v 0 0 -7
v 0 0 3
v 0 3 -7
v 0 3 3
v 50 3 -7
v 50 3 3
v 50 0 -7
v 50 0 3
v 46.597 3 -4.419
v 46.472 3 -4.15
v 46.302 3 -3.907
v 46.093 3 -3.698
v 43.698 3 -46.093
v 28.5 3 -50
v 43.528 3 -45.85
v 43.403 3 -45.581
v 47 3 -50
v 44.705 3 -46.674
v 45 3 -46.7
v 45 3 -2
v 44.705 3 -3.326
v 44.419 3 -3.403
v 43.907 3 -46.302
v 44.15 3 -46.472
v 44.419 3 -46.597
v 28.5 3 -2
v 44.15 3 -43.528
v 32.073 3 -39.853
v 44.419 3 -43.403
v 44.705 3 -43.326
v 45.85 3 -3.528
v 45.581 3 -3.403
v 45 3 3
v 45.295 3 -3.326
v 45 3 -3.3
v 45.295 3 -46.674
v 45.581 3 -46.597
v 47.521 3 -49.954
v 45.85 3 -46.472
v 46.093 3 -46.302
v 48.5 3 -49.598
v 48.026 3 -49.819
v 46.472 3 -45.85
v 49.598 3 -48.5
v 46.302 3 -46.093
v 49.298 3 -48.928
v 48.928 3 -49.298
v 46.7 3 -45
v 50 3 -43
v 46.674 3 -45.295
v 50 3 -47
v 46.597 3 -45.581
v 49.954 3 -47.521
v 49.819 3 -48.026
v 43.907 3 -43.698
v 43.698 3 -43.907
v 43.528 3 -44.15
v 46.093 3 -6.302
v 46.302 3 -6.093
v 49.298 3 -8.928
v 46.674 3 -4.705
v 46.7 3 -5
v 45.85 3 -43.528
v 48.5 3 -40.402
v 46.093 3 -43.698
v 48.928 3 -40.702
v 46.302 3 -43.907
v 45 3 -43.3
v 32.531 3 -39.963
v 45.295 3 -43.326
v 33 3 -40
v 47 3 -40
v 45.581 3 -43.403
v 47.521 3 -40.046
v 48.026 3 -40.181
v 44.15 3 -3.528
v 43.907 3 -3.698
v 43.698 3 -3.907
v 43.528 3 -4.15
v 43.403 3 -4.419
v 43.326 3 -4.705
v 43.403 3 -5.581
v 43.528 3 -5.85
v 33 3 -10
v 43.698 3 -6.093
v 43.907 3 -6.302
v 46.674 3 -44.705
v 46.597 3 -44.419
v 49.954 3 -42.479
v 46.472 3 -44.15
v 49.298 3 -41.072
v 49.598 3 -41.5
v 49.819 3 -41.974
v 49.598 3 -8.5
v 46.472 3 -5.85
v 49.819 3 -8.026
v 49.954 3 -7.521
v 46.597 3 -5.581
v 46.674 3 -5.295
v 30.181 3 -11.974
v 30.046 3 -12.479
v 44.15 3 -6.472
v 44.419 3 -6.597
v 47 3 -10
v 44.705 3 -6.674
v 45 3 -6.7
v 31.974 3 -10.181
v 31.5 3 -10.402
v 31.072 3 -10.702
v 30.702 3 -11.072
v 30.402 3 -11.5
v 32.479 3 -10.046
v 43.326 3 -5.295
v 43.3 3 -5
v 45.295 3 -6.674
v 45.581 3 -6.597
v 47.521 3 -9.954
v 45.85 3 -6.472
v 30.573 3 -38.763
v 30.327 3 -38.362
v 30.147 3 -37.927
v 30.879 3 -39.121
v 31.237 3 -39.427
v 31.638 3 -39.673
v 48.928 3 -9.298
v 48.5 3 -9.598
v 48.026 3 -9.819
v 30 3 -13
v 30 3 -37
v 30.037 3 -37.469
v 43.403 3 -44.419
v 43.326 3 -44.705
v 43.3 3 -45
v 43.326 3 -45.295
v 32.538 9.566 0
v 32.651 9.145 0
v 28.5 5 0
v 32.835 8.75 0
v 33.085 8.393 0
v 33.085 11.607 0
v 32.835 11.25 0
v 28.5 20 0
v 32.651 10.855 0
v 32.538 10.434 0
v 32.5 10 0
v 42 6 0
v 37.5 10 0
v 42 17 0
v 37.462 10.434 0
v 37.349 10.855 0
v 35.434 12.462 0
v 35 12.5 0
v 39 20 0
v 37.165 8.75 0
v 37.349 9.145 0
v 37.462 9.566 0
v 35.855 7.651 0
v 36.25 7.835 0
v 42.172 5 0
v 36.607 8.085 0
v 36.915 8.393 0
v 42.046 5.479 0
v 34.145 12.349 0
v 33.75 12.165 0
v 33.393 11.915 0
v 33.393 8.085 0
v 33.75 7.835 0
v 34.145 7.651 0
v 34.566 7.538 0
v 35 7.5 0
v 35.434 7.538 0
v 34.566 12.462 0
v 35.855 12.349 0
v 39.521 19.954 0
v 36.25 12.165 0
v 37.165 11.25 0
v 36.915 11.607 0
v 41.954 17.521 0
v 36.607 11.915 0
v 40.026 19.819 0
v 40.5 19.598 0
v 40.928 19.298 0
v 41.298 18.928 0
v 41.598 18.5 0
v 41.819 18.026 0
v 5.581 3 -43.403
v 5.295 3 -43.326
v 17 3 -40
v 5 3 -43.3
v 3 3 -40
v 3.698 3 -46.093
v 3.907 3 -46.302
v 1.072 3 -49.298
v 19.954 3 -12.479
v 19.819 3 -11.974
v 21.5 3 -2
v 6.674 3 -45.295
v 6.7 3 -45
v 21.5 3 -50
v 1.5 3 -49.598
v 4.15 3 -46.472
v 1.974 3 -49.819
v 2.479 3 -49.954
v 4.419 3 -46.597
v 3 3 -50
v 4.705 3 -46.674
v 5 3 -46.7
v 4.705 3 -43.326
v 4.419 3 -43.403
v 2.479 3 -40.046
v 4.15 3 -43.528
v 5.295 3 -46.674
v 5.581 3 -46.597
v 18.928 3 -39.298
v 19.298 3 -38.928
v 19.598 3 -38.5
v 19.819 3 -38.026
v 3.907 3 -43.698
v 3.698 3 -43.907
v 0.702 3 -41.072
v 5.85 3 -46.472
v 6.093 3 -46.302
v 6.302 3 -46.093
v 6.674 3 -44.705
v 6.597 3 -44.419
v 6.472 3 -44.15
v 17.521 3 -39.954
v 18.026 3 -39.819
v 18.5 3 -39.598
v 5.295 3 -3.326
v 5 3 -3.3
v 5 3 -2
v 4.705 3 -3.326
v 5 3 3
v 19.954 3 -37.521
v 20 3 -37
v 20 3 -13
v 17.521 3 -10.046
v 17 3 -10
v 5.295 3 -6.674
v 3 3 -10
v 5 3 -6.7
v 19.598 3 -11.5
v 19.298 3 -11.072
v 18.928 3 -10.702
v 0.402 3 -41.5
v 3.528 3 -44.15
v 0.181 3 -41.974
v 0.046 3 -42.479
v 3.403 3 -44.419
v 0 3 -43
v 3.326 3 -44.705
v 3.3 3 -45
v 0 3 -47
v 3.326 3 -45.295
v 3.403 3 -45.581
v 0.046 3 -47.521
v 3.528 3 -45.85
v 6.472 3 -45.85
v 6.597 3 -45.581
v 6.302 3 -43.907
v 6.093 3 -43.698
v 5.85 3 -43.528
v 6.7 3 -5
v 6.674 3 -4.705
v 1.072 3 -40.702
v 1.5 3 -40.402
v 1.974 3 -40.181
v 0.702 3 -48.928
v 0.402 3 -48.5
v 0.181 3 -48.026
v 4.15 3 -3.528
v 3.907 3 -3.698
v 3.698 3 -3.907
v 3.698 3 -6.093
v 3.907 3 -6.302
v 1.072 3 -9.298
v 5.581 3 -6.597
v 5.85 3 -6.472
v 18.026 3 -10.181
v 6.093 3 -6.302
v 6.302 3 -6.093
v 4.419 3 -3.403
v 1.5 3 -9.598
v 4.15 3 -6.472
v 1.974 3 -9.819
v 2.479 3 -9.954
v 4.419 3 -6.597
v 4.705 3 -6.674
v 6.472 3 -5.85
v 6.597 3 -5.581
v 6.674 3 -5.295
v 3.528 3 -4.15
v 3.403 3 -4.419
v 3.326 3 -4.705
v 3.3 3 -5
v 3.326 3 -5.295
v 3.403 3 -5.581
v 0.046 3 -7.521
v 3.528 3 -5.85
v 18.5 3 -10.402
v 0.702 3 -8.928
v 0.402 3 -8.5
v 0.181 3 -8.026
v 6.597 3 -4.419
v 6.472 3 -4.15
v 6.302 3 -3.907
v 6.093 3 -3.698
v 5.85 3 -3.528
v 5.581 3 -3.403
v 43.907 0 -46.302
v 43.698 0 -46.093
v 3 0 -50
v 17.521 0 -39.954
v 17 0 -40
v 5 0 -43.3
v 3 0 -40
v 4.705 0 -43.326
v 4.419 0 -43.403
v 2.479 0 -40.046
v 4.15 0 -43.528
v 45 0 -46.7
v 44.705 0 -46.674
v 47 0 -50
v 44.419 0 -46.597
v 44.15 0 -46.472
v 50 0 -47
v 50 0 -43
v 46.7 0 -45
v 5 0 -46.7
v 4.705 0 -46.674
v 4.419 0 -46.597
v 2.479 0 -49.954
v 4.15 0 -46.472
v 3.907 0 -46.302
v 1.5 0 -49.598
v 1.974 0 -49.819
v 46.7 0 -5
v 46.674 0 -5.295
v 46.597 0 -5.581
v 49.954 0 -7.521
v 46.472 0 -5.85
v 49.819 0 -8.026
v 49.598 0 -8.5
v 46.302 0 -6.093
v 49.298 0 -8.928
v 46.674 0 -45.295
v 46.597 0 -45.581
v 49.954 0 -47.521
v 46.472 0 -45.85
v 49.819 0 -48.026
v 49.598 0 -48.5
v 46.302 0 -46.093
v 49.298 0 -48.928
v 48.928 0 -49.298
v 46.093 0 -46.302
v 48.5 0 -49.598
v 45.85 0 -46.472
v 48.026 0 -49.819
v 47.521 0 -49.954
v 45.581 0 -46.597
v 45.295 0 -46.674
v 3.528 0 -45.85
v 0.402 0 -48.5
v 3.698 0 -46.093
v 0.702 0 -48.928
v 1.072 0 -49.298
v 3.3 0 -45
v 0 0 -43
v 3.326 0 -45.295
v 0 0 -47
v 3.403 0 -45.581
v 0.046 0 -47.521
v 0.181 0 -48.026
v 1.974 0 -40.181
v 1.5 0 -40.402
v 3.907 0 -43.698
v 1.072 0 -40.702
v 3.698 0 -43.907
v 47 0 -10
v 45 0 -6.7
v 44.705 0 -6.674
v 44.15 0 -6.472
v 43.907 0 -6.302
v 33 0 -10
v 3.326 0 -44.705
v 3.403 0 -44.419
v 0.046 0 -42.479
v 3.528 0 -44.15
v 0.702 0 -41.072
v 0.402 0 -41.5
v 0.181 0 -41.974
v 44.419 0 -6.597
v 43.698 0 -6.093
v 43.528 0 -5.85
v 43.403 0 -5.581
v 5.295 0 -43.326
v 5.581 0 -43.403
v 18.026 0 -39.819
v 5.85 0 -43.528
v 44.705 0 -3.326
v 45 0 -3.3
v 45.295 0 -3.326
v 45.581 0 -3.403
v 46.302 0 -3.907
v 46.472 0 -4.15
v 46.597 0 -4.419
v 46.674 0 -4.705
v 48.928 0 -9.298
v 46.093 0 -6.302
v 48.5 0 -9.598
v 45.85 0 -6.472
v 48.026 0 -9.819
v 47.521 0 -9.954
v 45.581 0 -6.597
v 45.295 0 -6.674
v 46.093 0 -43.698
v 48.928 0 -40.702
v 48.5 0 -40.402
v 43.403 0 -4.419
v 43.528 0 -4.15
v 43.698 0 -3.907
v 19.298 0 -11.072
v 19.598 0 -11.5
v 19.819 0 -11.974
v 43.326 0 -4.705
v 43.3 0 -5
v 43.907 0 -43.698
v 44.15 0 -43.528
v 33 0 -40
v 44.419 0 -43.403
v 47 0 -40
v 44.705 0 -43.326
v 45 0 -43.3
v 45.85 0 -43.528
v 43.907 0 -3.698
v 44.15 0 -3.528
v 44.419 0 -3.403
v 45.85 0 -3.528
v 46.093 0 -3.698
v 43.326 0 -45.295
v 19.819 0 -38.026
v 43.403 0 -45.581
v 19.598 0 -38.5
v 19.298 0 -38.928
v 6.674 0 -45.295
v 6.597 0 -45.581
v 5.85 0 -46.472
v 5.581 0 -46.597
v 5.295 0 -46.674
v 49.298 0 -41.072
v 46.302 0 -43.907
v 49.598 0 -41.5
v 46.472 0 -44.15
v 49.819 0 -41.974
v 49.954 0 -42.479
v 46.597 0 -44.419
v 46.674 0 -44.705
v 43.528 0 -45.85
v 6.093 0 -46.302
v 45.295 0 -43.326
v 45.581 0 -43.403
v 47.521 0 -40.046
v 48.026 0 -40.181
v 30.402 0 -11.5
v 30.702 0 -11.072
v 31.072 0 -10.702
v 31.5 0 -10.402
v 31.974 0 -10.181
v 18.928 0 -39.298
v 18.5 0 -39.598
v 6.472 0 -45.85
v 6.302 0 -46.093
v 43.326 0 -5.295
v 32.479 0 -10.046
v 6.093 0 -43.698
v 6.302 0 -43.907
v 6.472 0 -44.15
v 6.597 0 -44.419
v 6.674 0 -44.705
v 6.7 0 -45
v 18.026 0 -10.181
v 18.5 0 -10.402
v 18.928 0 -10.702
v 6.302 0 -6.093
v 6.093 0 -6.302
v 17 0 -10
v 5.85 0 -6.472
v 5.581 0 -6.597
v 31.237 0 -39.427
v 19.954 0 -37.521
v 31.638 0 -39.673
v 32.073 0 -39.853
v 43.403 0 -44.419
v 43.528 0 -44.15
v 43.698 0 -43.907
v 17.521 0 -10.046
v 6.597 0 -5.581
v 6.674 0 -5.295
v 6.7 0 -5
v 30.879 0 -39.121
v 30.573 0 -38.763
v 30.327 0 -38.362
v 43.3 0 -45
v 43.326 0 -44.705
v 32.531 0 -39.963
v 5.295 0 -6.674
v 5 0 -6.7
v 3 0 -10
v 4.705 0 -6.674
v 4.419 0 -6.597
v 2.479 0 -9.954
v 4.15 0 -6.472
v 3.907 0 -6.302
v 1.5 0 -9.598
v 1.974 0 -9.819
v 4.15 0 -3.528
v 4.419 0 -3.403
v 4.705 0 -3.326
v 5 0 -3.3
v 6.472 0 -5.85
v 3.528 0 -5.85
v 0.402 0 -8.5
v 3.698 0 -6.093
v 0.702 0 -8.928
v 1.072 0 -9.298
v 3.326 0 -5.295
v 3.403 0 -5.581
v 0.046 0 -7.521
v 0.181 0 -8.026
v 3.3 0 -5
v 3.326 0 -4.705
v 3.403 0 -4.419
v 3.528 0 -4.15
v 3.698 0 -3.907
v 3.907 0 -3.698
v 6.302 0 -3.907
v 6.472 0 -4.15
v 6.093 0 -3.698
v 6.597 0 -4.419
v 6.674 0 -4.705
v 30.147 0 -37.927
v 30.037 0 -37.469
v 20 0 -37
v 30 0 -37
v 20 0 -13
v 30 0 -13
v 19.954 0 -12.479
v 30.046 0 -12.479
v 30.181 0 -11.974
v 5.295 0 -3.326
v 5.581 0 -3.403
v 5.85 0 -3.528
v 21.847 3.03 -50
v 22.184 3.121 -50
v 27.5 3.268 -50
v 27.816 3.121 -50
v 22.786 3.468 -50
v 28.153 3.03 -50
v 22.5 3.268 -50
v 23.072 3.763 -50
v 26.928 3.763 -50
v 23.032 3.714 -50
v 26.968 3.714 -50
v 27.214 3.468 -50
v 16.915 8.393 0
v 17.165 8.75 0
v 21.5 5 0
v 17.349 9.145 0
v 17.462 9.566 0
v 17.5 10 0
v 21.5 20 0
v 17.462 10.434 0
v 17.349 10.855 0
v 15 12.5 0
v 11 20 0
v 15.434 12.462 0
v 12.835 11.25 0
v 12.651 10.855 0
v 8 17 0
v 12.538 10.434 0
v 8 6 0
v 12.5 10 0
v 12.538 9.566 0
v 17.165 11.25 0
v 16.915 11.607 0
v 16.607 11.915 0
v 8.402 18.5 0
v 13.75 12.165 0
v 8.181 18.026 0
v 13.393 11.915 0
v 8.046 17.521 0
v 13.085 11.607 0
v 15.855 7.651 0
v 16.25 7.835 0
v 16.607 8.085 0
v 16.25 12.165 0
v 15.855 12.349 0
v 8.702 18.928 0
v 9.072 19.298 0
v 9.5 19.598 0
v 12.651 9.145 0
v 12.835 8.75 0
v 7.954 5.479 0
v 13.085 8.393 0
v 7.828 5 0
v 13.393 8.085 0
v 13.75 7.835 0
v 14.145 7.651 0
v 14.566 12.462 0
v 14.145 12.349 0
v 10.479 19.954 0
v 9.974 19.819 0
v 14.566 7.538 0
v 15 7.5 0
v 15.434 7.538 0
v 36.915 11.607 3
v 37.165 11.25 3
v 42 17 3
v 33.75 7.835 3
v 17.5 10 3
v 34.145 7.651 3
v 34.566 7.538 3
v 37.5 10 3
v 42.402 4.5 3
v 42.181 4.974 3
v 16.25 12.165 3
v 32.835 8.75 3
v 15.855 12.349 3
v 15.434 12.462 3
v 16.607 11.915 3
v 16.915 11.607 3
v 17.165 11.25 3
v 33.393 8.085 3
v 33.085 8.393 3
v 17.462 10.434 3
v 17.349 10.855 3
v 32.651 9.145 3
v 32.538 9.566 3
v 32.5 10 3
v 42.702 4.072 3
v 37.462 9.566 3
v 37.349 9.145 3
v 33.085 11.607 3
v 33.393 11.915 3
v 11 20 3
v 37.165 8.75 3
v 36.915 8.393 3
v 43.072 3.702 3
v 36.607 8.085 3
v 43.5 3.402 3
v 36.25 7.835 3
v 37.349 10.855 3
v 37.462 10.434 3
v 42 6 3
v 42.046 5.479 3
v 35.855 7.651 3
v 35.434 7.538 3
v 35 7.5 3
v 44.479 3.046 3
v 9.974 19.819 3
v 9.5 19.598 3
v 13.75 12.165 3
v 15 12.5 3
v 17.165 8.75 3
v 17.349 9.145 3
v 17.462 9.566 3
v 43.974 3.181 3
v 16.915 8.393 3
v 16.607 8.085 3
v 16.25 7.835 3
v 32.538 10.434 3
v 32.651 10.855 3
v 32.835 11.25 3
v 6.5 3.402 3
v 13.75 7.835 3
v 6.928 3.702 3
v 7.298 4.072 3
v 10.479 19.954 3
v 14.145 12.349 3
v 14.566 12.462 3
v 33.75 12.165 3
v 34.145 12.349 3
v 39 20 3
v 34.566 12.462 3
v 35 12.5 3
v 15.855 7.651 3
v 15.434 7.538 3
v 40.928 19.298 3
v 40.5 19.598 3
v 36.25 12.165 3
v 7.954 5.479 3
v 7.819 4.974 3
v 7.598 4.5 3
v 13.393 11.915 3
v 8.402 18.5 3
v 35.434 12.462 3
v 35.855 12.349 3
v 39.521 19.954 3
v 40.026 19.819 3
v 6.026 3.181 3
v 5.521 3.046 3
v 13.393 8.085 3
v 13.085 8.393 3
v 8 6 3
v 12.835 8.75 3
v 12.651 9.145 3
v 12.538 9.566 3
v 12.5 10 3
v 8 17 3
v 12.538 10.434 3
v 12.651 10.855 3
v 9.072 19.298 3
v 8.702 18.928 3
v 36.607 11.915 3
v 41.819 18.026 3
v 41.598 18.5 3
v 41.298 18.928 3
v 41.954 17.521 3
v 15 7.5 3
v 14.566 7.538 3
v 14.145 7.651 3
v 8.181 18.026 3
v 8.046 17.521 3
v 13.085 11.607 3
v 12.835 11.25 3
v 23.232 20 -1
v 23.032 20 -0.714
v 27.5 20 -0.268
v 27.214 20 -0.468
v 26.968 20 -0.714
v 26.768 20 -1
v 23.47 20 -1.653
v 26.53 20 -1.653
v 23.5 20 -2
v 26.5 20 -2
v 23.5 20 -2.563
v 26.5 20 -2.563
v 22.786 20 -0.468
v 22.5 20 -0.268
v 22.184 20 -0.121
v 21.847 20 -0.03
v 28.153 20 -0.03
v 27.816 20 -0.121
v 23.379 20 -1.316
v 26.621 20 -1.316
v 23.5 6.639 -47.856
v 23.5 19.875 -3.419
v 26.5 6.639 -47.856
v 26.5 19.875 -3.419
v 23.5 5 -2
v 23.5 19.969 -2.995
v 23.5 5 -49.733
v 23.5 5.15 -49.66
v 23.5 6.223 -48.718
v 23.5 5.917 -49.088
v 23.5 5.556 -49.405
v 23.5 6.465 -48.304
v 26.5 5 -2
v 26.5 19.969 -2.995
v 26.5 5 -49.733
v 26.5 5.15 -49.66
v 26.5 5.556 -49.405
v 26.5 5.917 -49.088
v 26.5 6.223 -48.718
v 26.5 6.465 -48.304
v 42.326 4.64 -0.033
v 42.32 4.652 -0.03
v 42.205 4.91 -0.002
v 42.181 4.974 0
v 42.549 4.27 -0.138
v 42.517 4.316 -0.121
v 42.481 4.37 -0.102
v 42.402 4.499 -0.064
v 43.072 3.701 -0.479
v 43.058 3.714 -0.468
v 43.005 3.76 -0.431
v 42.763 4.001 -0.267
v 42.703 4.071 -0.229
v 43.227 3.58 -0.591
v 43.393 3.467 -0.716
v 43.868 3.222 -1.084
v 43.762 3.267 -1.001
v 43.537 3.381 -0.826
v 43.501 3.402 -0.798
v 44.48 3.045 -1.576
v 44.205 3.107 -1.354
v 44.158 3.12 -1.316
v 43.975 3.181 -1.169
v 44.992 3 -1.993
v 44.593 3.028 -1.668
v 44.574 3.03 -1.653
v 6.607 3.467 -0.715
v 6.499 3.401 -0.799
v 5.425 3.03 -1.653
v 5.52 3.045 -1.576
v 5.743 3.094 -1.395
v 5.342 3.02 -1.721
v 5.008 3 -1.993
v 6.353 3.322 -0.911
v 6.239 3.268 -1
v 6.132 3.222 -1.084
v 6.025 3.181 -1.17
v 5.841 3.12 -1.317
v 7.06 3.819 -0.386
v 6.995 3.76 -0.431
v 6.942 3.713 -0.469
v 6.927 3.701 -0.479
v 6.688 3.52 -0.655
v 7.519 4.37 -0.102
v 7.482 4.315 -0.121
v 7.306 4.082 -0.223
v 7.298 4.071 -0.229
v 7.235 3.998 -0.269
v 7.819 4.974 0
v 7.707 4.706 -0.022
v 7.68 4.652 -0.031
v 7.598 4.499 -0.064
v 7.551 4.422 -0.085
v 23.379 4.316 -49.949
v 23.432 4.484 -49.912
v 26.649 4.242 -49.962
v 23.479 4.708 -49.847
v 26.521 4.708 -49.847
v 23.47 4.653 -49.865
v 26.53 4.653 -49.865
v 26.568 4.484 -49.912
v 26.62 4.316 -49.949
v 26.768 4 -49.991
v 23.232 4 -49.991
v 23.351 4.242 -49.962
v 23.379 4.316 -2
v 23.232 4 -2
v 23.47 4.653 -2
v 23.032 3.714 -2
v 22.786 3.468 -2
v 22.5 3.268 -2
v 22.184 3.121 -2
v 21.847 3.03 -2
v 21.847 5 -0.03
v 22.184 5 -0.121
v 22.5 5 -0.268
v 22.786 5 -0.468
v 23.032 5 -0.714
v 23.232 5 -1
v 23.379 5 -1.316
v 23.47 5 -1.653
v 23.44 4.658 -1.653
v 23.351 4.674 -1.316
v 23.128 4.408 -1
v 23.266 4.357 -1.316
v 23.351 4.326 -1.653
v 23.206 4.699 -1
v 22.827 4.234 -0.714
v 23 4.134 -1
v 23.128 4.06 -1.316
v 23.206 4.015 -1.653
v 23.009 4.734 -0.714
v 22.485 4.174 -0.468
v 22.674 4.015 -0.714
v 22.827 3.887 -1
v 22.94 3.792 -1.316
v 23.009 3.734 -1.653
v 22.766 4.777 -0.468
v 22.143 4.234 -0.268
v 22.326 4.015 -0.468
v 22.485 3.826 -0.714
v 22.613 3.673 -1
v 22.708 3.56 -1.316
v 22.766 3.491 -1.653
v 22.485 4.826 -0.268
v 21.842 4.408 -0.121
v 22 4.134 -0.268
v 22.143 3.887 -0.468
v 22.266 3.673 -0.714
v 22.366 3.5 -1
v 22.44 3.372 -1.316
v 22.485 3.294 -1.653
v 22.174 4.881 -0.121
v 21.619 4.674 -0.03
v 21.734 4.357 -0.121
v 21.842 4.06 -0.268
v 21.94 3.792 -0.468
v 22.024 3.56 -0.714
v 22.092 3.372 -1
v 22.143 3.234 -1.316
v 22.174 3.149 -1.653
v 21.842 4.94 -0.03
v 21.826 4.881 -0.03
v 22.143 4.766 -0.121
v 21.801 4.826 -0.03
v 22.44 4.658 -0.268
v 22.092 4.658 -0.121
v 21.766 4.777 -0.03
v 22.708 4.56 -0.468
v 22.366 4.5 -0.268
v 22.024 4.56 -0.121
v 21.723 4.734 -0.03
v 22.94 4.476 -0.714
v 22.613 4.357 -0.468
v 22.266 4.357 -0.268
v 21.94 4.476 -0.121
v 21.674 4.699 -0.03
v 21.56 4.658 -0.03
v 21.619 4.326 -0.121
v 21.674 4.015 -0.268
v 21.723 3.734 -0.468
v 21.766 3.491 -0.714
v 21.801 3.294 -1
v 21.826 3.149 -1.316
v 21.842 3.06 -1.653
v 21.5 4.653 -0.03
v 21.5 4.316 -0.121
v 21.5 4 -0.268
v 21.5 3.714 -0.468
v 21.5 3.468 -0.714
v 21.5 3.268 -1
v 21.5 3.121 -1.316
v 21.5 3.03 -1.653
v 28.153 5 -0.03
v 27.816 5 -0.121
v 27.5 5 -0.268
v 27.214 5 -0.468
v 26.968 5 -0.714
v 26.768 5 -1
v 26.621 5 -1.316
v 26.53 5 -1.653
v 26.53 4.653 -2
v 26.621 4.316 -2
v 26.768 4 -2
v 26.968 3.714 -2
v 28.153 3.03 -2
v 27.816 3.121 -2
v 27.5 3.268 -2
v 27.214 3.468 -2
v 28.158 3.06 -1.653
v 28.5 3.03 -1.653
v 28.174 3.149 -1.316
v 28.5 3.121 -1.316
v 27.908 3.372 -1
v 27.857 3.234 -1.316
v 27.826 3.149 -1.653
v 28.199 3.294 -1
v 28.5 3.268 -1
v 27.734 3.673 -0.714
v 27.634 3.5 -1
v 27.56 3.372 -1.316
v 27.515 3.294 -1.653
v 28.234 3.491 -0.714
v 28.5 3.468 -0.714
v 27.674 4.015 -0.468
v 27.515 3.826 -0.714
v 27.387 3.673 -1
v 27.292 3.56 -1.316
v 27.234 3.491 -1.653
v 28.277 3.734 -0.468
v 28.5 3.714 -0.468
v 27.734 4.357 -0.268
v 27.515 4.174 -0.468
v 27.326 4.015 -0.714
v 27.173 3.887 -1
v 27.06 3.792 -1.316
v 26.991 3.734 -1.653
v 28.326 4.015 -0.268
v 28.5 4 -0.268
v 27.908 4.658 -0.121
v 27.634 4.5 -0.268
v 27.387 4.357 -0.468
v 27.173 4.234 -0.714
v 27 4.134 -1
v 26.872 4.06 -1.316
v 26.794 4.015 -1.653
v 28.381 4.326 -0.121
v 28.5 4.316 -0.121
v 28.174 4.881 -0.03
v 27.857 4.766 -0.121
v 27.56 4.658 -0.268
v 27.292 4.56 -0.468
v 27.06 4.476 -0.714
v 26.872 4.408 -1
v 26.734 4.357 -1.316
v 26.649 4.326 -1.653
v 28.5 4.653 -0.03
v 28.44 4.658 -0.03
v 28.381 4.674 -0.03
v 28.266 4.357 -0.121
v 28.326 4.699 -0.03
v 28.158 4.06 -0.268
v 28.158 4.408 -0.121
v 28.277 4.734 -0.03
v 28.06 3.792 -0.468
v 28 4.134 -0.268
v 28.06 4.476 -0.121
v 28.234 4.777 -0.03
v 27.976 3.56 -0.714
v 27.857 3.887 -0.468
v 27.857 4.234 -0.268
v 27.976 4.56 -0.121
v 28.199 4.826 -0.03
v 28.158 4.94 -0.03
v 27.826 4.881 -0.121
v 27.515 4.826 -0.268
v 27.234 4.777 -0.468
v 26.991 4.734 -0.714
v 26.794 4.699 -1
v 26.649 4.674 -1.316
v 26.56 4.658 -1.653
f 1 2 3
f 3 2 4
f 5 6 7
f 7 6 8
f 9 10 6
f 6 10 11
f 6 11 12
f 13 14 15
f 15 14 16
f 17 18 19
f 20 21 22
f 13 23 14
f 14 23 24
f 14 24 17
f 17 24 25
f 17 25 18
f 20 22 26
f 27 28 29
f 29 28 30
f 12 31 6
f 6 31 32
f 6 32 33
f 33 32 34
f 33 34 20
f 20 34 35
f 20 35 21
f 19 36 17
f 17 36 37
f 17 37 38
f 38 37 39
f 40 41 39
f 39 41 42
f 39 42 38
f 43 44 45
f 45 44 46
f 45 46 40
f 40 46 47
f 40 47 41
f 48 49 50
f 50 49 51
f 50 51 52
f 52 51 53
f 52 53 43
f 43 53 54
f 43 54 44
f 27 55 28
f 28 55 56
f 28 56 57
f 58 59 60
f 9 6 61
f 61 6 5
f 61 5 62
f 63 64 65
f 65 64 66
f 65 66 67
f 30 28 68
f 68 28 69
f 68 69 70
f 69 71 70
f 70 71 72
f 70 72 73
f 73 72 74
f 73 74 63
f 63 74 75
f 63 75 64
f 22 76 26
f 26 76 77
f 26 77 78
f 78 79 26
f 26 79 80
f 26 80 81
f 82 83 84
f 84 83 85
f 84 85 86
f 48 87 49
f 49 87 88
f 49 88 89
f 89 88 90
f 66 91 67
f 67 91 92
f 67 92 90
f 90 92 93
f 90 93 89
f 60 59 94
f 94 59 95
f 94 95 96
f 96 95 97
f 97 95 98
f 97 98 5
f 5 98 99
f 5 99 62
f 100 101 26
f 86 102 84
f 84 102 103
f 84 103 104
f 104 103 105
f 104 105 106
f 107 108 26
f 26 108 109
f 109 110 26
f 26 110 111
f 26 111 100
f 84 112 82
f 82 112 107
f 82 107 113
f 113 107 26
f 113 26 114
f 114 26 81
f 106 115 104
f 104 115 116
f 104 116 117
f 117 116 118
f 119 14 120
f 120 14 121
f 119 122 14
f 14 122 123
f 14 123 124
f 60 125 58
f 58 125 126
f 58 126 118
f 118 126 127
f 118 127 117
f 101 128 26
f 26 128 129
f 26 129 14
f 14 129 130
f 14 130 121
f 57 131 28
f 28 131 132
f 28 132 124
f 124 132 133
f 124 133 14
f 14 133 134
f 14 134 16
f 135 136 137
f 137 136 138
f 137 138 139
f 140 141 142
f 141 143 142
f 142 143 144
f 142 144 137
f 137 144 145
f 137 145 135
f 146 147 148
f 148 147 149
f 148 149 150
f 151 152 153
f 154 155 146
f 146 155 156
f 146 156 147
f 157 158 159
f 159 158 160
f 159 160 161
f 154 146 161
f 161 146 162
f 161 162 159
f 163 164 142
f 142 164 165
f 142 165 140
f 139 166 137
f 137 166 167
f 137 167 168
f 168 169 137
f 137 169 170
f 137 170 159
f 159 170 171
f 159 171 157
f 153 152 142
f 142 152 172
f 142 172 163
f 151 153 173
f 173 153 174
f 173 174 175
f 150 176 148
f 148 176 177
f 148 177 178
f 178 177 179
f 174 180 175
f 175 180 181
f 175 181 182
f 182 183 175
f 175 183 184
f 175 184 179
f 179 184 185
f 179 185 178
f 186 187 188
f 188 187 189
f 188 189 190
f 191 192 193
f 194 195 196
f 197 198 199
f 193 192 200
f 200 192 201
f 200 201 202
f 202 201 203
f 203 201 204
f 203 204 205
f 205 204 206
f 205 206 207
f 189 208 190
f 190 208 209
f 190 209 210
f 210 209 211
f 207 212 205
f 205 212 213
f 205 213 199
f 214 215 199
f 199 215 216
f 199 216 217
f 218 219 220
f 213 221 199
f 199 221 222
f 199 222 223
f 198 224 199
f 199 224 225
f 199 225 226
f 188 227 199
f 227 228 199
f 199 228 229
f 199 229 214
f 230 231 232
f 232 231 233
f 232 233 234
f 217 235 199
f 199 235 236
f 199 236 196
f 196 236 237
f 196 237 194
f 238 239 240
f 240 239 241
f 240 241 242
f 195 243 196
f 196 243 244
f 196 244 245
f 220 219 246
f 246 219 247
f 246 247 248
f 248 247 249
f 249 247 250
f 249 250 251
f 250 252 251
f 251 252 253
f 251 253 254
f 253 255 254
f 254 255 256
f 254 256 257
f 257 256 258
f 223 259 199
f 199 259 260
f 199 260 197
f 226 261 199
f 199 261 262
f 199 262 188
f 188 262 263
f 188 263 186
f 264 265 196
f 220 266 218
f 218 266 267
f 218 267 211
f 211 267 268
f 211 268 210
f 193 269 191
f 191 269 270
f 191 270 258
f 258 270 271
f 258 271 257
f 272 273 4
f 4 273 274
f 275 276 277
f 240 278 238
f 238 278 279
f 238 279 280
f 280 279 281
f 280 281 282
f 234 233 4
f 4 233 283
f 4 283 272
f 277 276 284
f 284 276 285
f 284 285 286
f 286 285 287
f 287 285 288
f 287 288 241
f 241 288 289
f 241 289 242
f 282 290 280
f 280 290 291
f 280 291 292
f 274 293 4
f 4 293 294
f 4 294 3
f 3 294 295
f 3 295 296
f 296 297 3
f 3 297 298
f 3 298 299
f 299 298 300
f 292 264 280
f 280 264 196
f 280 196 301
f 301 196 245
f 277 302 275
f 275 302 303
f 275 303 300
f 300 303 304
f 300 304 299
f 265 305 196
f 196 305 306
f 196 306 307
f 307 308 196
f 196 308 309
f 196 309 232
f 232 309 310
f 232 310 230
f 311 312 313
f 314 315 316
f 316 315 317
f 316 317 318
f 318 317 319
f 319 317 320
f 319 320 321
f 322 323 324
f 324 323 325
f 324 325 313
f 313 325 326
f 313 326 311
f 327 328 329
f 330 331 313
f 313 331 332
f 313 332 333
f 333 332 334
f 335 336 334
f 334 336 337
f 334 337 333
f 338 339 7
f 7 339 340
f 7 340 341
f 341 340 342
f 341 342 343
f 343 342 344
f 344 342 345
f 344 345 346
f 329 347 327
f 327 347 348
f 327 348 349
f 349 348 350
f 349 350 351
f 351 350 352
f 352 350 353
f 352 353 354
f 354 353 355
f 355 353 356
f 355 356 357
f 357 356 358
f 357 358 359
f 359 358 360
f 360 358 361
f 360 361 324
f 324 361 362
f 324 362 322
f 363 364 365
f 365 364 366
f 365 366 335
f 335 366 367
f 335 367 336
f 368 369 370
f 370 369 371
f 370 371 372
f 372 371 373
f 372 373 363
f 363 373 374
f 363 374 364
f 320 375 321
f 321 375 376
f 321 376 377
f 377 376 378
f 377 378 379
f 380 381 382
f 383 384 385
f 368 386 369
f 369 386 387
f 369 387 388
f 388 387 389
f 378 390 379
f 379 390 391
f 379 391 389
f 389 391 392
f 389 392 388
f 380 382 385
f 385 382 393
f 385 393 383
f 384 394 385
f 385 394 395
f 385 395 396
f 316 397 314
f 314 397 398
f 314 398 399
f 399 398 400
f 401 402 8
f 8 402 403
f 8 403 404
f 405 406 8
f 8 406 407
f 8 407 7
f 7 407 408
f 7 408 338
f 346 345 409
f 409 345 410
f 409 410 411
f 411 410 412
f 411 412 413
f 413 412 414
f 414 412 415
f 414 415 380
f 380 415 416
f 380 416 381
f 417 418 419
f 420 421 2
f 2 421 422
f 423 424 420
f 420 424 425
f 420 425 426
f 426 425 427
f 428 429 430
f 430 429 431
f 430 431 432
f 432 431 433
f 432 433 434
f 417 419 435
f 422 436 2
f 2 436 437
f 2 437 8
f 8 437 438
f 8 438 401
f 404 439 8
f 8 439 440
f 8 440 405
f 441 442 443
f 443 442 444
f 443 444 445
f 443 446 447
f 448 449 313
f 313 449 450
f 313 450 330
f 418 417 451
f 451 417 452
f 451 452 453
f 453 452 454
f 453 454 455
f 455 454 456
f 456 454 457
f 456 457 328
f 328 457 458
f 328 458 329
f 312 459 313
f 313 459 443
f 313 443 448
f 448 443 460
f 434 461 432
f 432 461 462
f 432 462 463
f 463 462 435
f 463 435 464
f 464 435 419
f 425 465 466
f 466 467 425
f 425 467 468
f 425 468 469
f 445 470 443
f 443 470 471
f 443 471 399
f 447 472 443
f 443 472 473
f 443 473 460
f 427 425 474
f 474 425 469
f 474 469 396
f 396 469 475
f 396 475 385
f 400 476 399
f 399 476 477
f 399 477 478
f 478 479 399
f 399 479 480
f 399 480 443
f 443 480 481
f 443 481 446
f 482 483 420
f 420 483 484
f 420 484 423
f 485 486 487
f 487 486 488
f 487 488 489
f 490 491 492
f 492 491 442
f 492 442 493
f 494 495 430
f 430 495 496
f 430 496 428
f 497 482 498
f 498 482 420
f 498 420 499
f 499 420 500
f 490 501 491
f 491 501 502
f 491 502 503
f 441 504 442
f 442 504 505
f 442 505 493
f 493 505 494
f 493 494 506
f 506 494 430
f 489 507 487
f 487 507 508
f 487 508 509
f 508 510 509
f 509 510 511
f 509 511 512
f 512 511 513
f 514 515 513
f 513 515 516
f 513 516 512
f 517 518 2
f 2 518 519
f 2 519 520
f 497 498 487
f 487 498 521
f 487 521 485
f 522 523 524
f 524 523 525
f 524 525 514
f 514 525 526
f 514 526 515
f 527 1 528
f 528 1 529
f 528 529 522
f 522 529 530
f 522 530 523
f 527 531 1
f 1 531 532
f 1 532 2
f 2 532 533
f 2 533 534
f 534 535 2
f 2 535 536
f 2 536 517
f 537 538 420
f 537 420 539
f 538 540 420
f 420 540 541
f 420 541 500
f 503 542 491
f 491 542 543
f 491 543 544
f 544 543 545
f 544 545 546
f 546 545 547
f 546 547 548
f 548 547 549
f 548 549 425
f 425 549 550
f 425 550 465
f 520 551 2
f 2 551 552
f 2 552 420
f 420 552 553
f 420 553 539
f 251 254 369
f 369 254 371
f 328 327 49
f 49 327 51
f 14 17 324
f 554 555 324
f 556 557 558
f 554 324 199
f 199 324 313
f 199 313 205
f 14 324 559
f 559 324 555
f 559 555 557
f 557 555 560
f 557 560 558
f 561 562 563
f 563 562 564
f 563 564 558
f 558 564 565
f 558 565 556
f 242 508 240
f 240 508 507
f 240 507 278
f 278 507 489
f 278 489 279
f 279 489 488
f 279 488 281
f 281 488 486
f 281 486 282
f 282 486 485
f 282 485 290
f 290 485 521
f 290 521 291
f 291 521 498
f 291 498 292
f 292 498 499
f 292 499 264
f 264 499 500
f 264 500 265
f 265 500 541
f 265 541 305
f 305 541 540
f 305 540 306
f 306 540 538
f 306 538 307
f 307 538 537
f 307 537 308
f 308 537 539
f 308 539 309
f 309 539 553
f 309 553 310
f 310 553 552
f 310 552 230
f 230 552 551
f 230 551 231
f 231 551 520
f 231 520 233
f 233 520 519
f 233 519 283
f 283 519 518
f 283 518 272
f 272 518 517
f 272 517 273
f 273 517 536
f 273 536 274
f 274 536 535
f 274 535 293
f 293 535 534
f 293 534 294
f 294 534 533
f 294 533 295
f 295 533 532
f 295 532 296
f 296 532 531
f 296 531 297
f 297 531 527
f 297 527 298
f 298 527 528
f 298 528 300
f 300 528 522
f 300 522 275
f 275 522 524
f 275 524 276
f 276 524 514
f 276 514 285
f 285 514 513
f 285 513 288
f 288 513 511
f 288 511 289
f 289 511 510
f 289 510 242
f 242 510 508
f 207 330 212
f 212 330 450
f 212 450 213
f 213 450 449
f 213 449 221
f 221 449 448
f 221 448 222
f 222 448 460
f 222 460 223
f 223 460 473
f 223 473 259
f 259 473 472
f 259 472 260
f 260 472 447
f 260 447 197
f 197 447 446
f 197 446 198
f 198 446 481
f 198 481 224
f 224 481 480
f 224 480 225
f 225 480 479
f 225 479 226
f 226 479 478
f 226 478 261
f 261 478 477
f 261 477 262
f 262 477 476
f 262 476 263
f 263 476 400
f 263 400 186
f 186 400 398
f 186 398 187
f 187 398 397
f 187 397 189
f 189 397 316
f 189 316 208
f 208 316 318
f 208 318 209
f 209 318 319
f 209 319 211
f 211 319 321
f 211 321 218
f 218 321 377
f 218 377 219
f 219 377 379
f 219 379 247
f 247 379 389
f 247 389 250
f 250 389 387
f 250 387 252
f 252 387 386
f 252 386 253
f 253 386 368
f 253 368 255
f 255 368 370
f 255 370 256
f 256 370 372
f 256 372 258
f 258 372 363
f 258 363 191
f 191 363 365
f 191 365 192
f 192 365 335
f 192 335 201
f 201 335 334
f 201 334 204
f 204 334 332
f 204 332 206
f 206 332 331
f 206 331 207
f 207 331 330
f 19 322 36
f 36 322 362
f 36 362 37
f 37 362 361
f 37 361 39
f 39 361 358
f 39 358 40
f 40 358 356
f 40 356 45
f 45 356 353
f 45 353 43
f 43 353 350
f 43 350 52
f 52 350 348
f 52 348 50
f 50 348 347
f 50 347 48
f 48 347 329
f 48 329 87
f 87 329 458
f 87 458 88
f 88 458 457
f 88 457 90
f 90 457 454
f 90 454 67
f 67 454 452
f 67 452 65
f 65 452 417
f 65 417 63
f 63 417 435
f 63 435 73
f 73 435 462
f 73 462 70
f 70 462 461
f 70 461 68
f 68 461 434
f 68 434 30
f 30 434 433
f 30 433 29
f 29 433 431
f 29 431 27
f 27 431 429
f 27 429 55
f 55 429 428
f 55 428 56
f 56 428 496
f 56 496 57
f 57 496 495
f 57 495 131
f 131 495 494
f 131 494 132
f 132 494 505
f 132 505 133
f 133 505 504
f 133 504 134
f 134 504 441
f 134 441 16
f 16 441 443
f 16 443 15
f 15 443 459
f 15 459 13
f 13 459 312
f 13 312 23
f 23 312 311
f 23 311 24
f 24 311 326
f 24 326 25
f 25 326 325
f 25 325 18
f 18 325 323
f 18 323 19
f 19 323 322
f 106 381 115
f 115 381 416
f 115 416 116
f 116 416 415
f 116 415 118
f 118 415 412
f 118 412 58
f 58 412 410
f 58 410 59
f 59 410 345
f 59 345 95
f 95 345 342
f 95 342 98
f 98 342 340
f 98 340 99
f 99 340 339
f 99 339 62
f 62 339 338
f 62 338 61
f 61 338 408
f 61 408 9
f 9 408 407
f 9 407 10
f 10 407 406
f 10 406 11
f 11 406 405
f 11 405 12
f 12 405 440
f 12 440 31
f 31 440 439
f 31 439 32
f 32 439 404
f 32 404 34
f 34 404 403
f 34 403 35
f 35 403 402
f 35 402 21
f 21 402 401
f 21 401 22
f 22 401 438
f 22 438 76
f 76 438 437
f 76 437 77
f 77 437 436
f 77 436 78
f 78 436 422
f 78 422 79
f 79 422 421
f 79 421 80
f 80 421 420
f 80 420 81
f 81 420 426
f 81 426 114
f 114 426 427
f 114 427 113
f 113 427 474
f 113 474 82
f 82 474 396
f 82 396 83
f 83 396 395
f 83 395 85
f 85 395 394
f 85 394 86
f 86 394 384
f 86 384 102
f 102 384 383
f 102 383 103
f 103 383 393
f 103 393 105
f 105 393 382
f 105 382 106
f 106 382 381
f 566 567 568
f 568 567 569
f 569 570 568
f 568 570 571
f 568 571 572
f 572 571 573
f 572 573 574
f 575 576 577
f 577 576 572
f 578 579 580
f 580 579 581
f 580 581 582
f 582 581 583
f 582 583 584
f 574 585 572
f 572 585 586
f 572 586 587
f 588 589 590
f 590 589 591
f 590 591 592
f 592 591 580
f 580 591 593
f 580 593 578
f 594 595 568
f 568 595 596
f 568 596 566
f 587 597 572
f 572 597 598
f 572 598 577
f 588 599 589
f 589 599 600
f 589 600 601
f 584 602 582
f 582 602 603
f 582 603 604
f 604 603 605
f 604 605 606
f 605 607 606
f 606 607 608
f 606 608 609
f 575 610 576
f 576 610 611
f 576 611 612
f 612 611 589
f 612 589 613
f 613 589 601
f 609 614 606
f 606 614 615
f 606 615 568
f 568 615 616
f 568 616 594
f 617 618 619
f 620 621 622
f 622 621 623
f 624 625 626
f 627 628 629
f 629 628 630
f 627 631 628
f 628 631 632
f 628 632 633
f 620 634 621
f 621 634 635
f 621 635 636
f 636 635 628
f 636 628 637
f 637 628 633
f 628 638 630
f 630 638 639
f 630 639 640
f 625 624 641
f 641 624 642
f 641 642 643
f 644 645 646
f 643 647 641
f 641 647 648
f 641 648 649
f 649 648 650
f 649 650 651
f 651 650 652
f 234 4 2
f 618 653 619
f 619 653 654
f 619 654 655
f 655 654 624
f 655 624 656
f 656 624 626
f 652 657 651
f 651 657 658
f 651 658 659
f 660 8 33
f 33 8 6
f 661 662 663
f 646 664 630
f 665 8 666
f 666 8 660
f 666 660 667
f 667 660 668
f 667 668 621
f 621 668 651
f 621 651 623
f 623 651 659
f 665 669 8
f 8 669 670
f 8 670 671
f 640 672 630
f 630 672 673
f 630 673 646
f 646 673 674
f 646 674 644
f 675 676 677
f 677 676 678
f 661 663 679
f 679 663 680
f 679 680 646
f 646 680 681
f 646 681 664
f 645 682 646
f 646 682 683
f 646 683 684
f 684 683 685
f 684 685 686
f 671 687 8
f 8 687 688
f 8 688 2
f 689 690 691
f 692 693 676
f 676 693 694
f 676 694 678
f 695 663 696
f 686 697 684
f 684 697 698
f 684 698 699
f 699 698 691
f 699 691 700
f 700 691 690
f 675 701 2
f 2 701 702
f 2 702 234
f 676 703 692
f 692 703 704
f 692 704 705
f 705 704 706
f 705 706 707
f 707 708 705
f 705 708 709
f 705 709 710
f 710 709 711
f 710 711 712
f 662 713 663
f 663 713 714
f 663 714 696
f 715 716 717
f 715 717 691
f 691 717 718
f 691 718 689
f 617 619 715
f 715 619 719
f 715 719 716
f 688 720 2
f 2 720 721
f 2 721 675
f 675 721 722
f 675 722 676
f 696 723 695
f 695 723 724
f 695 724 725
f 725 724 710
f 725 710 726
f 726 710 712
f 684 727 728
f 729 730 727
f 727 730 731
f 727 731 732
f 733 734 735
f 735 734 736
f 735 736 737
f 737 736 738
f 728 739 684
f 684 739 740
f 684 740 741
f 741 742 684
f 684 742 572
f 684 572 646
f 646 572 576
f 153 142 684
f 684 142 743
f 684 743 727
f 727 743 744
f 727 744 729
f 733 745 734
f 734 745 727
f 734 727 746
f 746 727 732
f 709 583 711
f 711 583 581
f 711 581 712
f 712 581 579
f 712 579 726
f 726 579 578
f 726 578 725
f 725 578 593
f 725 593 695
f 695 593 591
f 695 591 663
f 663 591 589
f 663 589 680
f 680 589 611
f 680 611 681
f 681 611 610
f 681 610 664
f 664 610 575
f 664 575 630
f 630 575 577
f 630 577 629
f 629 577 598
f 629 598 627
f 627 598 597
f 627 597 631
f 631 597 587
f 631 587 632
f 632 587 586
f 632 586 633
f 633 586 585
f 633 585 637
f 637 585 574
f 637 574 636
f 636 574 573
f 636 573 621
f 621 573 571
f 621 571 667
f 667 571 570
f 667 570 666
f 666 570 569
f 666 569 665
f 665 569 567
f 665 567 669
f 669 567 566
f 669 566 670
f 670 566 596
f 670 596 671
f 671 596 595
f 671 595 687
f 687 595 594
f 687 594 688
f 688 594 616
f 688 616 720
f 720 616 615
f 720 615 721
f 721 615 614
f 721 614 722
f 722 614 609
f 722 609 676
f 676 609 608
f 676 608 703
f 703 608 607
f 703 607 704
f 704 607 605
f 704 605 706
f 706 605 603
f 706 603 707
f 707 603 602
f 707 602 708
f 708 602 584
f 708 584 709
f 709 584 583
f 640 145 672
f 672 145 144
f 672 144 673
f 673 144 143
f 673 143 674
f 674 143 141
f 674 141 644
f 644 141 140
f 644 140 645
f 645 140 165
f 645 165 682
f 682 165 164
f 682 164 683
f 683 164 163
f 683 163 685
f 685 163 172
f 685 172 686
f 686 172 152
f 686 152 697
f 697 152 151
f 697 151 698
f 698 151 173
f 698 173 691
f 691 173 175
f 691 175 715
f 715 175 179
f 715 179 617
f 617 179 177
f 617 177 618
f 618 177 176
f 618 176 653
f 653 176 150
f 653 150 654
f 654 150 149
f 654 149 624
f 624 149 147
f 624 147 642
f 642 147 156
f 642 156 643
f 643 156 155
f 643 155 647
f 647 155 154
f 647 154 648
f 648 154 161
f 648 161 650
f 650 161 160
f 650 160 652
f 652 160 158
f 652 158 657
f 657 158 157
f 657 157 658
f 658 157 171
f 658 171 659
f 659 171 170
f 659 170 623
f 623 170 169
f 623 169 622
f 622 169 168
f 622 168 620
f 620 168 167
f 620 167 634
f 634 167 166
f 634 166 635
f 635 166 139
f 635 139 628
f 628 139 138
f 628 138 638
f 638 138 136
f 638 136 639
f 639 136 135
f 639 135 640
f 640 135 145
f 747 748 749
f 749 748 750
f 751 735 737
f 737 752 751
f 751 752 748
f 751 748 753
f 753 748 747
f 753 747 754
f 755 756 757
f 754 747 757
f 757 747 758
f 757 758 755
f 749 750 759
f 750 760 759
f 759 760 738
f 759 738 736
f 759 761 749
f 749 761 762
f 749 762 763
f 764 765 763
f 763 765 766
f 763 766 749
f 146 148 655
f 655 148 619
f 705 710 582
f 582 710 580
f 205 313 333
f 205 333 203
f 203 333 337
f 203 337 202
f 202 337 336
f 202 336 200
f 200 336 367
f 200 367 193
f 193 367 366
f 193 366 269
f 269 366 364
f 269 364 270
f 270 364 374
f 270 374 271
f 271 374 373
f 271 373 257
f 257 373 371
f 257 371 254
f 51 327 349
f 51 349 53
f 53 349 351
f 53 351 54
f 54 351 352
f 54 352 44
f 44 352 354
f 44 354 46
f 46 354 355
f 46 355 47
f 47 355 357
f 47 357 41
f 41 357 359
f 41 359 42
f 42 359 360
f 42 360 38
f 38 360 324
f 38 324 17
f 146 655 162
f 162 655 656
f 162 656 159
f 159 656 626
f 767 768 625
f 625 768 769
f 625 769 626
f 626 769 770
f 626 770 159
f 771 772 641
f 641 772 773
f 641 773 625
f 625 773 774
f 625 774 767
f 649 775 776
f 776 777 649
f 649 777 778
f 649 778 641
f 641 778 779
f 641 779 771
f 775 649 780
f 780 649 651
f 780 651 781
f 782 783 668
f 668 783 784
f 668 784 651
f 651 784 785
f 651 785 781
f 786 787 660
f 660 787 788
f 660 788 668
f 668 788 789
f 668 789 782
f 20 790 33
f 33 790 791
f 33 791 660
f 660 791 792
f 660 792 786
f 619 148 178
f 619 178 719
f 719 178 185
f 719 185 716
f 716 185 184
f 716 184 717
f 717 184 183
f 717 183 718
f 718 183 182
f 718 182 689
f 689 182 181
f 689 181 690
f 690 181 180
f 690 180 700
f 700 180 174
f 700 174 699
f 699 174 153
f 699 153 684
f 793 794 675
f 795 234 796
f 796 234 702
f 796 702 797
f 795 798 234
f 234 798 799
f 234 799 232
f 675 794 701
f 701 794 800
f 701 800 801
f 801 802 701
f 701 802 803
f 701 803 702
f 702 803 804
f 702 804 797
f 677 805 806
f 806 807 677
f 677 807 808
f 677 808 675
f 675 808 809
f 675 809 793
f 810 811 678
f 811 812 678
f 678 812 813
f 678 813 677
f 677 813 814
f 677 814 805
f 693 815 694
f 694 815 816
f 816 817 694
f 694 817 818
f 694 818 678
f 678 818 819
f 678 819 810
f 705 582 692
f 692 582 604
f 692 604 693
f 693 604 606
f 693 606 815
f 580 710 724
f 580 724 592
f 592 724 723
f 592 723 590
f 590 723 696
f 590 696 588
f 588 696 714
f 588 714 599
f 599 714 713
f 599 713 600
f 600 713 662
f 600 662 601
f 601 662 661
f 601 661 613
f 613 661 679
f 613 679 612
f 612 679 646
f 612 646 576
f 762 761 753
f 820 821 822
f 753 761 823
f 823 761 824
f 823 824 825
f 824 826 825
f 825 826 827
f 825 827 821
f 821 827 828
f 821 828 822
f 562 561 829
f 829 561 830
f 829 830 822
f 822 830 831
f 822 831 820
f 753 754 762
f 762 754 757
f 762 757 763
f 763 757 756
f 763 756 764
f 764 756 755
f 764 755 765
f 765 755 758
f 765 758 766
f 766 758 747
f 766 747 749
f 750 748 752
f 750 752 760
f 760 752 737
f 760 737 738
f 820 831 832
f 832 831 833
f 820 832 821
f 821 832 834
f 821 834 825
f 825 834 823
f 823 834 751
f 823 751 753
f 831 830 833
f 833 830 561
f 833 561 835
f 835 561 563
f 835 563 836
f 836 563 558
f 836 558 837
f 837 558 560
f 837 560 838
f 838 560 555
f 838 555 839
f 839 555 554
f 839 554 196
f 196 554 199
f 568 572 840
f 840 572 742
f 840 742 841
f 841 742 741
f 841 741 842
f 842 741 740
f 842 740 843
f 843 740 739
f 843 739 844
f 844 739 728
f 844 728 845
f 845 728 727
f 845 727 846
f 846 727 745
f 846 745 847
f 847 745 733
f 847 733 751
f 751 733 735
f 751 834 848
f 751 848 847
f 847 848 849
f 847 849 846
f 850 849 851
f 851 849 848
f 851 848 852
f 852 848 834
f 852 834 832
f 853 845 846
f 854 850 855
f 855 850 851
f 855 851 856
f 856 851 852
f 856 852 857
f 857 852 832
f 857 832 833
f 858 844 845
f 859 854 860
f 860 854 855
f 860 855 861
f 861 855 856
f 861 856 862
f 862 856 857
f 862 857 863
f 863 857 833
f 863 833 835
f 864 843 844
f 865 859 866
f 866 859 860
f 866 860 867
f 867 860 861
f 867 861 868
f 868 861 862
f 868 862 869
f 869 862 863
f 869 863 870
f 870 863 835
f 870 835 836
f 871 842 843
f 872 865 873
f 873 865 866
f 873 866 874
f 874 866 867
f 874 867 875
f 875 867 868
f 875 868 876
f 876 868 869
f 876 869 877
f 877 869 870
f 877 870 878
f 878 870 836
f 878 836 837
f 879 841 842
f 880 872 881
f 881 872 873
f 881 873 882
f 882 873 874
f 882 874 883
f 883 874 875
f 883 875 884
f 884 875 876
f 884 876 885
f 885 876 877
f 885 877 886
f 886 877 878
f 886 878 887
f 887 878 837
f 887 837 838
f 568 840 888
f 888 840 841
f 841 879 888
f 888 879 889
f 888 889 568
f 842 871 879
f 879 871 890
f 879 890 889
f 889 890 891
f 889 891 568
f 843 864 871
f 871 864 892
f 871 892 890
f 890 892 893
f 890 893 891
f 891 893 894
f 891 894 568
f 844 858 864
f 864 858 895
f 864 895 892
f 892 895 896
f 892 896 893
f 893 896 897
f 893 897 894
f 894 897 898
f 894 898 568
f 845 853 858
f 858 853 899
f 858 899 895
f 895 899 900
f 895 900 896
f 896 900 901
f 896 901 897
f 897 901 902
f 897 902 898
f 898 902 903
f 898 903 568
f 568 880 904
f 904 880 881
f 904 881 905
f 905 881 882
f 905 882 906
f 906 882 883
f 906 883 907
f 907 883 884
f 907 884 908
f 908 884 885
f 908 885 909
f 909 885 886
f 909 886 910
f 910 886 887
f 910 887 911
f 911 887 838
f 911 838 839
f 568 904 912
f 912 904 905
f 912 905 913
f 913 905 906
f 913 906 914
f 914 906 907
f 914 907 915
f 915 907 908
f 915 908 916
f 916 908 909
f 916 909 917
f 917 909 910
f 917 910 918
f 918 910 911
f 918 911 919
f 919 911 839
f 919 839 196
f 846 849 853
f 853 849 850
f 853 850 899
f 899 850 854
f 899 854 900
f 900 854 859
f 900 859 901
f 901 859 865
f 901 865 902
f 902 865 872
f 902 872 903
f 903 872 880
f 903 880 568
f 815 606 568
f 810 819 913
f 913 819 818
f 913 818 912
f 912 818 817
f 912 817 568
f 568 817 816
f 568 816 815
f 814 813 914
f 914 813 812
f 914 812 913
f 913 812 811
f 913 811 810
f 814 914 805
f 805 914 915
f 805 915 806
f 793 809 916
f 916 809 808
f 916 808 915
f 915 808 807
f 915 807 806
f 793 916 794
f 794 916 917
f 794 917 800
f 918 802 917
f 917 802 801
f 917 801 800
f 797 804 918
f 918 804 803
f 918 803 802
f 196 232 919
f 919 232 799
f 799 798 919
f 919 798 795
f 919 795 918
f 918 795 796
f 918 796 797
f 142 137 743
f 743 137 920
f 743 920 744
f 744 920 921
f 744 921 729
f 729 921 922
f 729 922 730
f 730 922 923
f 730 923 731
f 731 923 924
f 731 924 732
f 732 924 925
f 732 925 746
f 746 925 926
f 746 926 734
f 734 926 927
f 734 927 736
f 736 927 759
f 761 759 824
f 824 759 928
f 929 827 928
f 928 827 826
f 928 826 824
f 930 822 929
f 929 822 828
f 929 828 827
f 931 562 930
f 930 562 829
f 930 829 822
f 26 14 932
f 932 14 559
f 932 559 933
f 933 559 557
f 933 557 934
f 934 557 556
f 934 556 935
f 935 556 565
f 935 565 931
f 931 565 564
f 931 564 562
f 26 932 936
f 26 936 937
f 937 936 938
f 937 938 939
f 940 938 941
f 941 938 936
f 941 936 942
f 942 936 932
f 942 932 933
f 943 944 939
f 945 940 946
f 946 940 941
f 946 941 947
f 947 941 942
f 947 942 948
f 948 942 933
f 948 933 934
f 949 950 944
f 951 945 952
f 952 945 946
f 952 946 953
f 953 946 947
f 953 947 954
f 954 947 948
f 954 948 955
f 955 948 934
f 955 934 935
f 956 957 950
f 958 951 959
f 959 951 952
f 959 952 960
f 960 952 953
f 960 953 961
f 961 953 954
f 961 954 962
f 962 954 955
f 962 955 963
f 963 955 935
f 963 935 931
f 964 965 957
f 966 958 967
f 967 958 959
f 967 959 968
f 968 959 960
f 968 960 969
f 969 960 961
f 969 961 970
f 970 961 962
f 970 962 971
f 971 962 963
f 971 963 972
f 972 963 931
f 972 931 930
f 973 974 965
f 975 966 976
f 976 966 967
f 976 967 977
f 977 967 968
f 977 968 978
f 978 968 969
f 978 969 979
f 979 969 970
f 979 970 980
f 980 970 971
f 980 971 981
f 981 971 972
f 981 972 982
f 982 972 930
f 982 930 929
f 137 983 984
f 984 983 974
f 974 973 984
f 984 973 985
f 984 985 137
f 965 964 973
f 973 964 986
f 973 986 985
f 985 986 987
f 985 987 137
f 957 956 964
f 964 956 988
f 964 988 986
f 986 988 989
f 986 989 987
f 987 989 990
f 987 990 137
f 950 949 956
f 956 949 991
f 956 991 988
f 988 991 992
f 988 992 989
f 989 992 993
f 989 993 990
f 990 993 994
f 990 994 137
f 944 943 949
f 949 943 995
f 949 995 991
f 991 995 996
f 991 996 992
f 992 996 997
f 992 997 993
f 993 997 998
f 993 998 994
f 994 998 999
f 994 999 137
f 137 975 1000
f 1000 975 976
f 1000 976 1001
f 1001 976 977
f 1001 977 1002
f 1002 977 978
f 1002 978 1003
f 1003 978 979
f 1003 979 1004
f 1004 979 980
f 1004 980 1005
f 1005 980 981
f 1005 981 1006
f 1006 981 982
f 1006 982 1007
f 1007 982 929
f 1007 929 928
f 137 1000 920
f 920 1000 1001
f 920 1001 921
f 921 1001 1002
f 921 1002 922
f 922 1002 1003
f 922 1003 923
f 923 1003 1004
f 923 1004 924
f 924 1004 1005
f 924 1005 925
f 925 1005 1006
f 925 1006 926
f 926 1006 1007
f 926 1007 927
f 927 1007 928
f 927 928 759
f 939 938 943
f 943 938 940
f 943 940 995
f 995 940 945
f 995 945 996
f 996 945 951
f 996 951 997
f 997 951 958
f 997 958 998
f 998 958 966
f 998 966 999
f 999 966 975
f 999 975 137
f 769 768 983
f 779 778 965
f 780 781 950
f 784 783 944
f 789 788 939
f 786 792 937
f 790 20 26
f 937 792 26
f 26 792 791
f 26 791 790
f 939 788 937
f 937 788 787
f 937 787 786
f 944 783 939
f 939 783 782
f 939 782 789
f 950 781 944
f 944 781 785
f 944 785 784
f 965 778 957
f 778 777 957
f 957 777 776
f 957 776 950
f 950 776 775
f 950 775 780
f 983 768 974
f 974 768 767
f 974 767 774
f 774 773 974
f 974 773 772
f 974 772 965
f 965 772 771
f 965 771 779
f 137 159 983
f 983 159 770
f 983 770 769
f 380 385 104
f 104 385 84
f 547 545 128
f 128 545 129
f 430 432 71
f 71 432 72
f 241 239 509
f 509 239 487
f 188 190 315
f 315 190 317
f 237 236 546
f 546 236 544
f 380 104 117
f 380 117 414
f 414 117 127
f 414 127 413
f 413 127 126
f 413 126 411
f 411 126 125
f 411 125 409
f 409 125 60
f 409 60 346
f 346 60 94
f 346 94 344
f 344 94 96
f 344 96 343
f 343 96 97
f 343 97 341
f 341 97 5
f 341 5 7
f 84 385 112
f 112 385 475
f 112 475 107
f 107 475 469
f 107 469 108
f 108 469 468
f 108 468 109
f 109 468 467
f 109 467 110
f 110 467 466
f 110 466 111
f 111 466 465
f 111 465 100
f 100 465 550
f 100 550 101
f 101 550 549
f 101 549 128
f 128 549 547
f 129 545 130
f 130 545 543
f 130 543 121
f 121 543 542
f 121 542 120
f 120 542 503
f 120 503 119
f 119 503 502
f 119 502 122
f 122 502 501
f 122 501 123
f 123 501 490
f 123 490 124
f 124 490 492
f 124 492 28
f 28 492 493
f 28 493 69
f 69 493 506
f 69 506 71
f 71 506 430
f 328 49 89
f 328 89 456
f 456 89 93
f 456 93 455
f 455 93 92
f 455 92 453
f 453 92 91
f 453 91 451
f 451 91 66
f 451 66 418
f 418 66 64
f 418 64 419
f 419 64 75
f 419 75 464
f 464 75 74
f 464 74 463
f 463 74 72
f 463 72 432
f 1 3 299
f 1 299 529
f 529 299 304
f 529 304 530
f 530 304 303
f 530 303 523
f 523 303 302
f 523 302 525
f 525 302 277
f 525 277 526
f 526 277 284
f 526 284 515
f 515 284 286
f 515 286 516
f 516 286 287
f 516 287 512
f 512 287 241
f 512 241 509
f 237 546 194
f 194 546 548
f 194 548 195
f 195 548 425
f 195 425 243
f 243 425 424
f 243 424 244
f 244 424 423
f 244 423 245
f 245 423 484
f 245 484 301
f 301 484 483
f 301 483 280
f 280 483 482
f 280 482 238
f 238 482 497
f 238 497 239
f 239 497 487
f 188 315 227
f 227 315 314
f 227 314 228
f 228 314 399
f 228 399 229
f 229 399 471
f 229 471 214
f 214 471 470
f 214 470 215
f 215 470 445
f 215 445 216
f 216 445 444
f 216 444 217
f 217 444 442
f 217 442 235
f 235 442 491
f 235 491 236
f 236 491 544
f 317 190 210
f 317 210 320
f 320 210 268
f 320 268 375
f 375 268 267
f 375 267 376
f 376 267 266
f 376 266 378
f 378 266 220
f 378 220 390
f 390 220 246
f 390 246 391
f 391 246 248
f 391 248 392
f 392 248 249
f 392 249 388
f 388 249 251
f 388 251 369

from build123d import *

# Parameters (mm, degrees)
ESQUISSE1_W             = 50
ESQUISSE1_H             = 50
ESQUISSE1_R             = 1.7
BOSS_EXTRU_1_DEPTH      = 3
ESQUISSE2_W             = 50
ESQUISSE2_H             = 20
ESQUISSE2_R             = 2.5
BOSS_EXTRU_2_DEPTH      = 3
BOSS_EXTRU_3_DEPTH      = 1.5
BOSS_EXTRU_3_DEPTH_BACK = 1.5
ESQUISSE5_W             = 8
ESQUISSE5_H             = 17
ENL_V_MAT_EXTRU_2_DEPTH = 10
CONG_1_R                = 3
CONG_2_R                = 3
CONG_3_R                = 2
ESQUISSE4_W             = 20
ESQUISSE4_H             = 30
ENL_V_MAT_EXTRU_1_DEPTH = 73.725511411
CONG_4_R                = 3


with BuildPart() as part:
    # Esquisse1 → Boss.-Extru.1 (new body)
    with BuildSketch(Plane(origin=(0, 0, 0), x_dir=(1, 0, 0), z_dir=(0, 1, 0))):
        with Locations((25, 25)):
            Rectangle(ESQUISSE1_W, ESQUISSE1_H)
        with Locations(Location((5, 5, 0), (0, 0, 270))):
            Circle(ESQUISSE1_R, mode=Mode.SUBTRACT)
        with Locations(Location((5, 45, 0), (0, 0, 90))):
            Circle(ESQUISSE1_R, mode=Mode.SUBTRACT)
        with Locations(Location((45, 45, 0), (0, 0, 270))):
            Circle(ESQUISSE1_R, mode=Mode.SUBTRACT)
        with Locations(Location((45, 5, 0), (0, 0, 90))):
            Circle(ESQUISSE1_R, mode=Mode.SUBTRACT)
    extrude(amount=BOSS_EXTRU_1_DEPTH)

    # Esquisse2 → Boss.-Extru.2 (add)
    with BuildSketch(Plane.XY):
        with Locations((25, 10)):
            Rectangle(ESQUISSE2_W, ESQUISSE2_H)
        with Locations((15, 10)):
            Circle(ESQUISSE2_R, mode=Mode.SUBTRACT)
        with Locations(Location((35, 10, 0), (0, 0, 180))):
            Circle(ESQUISSE2_R, mode=Mode.SUBTRACT)
    extrude(amount=BOSS_EXTRU_2_DEPTH)

    # Esquisse3 → Boss.-Extru.3 (add, two sides: drawn at the far end of the back side and taken through both)
    with BuildSketch(Plane(origin=(25, 0, 0), x_dir=(0, 0, -1), z_dir=(1, 0, 0)).offset(-BOSS_EXTRU_3_DEPTH_BACK)):
        Polygon((0, 20), (3, 20), (50, 6), (50, 3), (0, 3), align=None)
    extrude(amount=BOSS_EXTRU_3_DEPTH + BOSS_EXTRU_3_DEPTH_BACK)

    # Esquisse5 → Enlèv. mat.-Extru.2 (cut)
    with BuildSketch(Plane(origin=(0, 0, 0), x_dir=(-1, 0, 0), z_dir=(0, 0, -1))):
        with Locations((-4, 11.5)):
            Rectangle(ESQUISSE5_W, ESQUISSE5_H)
        with Locations((-46, 11.5)):
            Rectangle(ESQUISSE5_W, ESQUISSE5_H)
    extrude(amount=-ENL_V_MAT_EXTRU_2_DEPTH, mode=Mode.SUBTRACT)

    # Congé1
    cong_1_edges = [part.edges().sort_by_distance(p)[0] for p in [
        (0, 1.5, -50),
        (50, 1.5, -50),
    ]]
    fillet(cong_1_edges, radius=CONG_1_R)

    # Congé2
    cong_2_edges = [part.edges().sort_by_distance(p)[0] for p in [
        (25, 20, -3),
        (25, 6, -50),
        (42, 20, 1.5),
        (8, 20, 1.5),
        (8, 3, 1.5),
        (42, 3, 1.5),
    ]]
    fillet(cong_2_edges, radius=CONG_2_R)

    # Congé3
    cong_3_edges = [part.edges().sort_by_distance(p)[0] for p in [
        (26.5, 11.5, 0),
    ]]
    fillet(cong_3_edges, radius=CONG_3_R)
    cong_3_2_edges = [part.edges().sort_by_distance(p)[0] for p in [
        (36.75, 3, 0),
    ]]
    fillet(cong_3_2_edges, radius=CONG_3_R)
    cong_3_3_edges = [part.edges().sort_by_distance(p)[0] for p in [
        (23.5, 11.5, 0),
    ]]
    fillet(cong_3_3_edges, radius=CONG_3_R)
    cong_3_4_edges = [part.edges().sort_by_distance(p)[0] for p in [
        (23.5, 3, -26),
    ]]
    fillet(cong_3_4_edges, radius=CONG_3_R)

    # Esquisse4 → Enlèv. mat.-Extru.1 (cut, through all)
    with BuildSketch(Plane(origin=(0, 3, 0), x_dir=(1, 0, 0), z_dir=(0, 1, 0))):
        with Locations((40, 25)):
            Rectangle(ESQUISSE4_W, ESQUISSE4_H)
        with Locations((10, 25)):
            Rectangle(ESQUISSE4_W, ESQUISSE4_H)
    extrude(amount=-ENL_V_MAT_EXTRU_1_DEPTH, mode=Mode.SUBTRACT)

    # Congé4
    cong_4_edges = [part.edges().sort_by_distance(p)[0] for p in [
        (50, 1.5, -40),
        (50, 1.5, -10),
        (30, 1.5, -10),
        (30, 1.5, -40),
        (20, 1.5, -10),
        (0, 1.5, -10),
        (0, 1.5, -40),
        (20, 1.5, -40),
    ]]
    fillet(cong_4_edges, radius=CONG_4_R)


solid = part.part
